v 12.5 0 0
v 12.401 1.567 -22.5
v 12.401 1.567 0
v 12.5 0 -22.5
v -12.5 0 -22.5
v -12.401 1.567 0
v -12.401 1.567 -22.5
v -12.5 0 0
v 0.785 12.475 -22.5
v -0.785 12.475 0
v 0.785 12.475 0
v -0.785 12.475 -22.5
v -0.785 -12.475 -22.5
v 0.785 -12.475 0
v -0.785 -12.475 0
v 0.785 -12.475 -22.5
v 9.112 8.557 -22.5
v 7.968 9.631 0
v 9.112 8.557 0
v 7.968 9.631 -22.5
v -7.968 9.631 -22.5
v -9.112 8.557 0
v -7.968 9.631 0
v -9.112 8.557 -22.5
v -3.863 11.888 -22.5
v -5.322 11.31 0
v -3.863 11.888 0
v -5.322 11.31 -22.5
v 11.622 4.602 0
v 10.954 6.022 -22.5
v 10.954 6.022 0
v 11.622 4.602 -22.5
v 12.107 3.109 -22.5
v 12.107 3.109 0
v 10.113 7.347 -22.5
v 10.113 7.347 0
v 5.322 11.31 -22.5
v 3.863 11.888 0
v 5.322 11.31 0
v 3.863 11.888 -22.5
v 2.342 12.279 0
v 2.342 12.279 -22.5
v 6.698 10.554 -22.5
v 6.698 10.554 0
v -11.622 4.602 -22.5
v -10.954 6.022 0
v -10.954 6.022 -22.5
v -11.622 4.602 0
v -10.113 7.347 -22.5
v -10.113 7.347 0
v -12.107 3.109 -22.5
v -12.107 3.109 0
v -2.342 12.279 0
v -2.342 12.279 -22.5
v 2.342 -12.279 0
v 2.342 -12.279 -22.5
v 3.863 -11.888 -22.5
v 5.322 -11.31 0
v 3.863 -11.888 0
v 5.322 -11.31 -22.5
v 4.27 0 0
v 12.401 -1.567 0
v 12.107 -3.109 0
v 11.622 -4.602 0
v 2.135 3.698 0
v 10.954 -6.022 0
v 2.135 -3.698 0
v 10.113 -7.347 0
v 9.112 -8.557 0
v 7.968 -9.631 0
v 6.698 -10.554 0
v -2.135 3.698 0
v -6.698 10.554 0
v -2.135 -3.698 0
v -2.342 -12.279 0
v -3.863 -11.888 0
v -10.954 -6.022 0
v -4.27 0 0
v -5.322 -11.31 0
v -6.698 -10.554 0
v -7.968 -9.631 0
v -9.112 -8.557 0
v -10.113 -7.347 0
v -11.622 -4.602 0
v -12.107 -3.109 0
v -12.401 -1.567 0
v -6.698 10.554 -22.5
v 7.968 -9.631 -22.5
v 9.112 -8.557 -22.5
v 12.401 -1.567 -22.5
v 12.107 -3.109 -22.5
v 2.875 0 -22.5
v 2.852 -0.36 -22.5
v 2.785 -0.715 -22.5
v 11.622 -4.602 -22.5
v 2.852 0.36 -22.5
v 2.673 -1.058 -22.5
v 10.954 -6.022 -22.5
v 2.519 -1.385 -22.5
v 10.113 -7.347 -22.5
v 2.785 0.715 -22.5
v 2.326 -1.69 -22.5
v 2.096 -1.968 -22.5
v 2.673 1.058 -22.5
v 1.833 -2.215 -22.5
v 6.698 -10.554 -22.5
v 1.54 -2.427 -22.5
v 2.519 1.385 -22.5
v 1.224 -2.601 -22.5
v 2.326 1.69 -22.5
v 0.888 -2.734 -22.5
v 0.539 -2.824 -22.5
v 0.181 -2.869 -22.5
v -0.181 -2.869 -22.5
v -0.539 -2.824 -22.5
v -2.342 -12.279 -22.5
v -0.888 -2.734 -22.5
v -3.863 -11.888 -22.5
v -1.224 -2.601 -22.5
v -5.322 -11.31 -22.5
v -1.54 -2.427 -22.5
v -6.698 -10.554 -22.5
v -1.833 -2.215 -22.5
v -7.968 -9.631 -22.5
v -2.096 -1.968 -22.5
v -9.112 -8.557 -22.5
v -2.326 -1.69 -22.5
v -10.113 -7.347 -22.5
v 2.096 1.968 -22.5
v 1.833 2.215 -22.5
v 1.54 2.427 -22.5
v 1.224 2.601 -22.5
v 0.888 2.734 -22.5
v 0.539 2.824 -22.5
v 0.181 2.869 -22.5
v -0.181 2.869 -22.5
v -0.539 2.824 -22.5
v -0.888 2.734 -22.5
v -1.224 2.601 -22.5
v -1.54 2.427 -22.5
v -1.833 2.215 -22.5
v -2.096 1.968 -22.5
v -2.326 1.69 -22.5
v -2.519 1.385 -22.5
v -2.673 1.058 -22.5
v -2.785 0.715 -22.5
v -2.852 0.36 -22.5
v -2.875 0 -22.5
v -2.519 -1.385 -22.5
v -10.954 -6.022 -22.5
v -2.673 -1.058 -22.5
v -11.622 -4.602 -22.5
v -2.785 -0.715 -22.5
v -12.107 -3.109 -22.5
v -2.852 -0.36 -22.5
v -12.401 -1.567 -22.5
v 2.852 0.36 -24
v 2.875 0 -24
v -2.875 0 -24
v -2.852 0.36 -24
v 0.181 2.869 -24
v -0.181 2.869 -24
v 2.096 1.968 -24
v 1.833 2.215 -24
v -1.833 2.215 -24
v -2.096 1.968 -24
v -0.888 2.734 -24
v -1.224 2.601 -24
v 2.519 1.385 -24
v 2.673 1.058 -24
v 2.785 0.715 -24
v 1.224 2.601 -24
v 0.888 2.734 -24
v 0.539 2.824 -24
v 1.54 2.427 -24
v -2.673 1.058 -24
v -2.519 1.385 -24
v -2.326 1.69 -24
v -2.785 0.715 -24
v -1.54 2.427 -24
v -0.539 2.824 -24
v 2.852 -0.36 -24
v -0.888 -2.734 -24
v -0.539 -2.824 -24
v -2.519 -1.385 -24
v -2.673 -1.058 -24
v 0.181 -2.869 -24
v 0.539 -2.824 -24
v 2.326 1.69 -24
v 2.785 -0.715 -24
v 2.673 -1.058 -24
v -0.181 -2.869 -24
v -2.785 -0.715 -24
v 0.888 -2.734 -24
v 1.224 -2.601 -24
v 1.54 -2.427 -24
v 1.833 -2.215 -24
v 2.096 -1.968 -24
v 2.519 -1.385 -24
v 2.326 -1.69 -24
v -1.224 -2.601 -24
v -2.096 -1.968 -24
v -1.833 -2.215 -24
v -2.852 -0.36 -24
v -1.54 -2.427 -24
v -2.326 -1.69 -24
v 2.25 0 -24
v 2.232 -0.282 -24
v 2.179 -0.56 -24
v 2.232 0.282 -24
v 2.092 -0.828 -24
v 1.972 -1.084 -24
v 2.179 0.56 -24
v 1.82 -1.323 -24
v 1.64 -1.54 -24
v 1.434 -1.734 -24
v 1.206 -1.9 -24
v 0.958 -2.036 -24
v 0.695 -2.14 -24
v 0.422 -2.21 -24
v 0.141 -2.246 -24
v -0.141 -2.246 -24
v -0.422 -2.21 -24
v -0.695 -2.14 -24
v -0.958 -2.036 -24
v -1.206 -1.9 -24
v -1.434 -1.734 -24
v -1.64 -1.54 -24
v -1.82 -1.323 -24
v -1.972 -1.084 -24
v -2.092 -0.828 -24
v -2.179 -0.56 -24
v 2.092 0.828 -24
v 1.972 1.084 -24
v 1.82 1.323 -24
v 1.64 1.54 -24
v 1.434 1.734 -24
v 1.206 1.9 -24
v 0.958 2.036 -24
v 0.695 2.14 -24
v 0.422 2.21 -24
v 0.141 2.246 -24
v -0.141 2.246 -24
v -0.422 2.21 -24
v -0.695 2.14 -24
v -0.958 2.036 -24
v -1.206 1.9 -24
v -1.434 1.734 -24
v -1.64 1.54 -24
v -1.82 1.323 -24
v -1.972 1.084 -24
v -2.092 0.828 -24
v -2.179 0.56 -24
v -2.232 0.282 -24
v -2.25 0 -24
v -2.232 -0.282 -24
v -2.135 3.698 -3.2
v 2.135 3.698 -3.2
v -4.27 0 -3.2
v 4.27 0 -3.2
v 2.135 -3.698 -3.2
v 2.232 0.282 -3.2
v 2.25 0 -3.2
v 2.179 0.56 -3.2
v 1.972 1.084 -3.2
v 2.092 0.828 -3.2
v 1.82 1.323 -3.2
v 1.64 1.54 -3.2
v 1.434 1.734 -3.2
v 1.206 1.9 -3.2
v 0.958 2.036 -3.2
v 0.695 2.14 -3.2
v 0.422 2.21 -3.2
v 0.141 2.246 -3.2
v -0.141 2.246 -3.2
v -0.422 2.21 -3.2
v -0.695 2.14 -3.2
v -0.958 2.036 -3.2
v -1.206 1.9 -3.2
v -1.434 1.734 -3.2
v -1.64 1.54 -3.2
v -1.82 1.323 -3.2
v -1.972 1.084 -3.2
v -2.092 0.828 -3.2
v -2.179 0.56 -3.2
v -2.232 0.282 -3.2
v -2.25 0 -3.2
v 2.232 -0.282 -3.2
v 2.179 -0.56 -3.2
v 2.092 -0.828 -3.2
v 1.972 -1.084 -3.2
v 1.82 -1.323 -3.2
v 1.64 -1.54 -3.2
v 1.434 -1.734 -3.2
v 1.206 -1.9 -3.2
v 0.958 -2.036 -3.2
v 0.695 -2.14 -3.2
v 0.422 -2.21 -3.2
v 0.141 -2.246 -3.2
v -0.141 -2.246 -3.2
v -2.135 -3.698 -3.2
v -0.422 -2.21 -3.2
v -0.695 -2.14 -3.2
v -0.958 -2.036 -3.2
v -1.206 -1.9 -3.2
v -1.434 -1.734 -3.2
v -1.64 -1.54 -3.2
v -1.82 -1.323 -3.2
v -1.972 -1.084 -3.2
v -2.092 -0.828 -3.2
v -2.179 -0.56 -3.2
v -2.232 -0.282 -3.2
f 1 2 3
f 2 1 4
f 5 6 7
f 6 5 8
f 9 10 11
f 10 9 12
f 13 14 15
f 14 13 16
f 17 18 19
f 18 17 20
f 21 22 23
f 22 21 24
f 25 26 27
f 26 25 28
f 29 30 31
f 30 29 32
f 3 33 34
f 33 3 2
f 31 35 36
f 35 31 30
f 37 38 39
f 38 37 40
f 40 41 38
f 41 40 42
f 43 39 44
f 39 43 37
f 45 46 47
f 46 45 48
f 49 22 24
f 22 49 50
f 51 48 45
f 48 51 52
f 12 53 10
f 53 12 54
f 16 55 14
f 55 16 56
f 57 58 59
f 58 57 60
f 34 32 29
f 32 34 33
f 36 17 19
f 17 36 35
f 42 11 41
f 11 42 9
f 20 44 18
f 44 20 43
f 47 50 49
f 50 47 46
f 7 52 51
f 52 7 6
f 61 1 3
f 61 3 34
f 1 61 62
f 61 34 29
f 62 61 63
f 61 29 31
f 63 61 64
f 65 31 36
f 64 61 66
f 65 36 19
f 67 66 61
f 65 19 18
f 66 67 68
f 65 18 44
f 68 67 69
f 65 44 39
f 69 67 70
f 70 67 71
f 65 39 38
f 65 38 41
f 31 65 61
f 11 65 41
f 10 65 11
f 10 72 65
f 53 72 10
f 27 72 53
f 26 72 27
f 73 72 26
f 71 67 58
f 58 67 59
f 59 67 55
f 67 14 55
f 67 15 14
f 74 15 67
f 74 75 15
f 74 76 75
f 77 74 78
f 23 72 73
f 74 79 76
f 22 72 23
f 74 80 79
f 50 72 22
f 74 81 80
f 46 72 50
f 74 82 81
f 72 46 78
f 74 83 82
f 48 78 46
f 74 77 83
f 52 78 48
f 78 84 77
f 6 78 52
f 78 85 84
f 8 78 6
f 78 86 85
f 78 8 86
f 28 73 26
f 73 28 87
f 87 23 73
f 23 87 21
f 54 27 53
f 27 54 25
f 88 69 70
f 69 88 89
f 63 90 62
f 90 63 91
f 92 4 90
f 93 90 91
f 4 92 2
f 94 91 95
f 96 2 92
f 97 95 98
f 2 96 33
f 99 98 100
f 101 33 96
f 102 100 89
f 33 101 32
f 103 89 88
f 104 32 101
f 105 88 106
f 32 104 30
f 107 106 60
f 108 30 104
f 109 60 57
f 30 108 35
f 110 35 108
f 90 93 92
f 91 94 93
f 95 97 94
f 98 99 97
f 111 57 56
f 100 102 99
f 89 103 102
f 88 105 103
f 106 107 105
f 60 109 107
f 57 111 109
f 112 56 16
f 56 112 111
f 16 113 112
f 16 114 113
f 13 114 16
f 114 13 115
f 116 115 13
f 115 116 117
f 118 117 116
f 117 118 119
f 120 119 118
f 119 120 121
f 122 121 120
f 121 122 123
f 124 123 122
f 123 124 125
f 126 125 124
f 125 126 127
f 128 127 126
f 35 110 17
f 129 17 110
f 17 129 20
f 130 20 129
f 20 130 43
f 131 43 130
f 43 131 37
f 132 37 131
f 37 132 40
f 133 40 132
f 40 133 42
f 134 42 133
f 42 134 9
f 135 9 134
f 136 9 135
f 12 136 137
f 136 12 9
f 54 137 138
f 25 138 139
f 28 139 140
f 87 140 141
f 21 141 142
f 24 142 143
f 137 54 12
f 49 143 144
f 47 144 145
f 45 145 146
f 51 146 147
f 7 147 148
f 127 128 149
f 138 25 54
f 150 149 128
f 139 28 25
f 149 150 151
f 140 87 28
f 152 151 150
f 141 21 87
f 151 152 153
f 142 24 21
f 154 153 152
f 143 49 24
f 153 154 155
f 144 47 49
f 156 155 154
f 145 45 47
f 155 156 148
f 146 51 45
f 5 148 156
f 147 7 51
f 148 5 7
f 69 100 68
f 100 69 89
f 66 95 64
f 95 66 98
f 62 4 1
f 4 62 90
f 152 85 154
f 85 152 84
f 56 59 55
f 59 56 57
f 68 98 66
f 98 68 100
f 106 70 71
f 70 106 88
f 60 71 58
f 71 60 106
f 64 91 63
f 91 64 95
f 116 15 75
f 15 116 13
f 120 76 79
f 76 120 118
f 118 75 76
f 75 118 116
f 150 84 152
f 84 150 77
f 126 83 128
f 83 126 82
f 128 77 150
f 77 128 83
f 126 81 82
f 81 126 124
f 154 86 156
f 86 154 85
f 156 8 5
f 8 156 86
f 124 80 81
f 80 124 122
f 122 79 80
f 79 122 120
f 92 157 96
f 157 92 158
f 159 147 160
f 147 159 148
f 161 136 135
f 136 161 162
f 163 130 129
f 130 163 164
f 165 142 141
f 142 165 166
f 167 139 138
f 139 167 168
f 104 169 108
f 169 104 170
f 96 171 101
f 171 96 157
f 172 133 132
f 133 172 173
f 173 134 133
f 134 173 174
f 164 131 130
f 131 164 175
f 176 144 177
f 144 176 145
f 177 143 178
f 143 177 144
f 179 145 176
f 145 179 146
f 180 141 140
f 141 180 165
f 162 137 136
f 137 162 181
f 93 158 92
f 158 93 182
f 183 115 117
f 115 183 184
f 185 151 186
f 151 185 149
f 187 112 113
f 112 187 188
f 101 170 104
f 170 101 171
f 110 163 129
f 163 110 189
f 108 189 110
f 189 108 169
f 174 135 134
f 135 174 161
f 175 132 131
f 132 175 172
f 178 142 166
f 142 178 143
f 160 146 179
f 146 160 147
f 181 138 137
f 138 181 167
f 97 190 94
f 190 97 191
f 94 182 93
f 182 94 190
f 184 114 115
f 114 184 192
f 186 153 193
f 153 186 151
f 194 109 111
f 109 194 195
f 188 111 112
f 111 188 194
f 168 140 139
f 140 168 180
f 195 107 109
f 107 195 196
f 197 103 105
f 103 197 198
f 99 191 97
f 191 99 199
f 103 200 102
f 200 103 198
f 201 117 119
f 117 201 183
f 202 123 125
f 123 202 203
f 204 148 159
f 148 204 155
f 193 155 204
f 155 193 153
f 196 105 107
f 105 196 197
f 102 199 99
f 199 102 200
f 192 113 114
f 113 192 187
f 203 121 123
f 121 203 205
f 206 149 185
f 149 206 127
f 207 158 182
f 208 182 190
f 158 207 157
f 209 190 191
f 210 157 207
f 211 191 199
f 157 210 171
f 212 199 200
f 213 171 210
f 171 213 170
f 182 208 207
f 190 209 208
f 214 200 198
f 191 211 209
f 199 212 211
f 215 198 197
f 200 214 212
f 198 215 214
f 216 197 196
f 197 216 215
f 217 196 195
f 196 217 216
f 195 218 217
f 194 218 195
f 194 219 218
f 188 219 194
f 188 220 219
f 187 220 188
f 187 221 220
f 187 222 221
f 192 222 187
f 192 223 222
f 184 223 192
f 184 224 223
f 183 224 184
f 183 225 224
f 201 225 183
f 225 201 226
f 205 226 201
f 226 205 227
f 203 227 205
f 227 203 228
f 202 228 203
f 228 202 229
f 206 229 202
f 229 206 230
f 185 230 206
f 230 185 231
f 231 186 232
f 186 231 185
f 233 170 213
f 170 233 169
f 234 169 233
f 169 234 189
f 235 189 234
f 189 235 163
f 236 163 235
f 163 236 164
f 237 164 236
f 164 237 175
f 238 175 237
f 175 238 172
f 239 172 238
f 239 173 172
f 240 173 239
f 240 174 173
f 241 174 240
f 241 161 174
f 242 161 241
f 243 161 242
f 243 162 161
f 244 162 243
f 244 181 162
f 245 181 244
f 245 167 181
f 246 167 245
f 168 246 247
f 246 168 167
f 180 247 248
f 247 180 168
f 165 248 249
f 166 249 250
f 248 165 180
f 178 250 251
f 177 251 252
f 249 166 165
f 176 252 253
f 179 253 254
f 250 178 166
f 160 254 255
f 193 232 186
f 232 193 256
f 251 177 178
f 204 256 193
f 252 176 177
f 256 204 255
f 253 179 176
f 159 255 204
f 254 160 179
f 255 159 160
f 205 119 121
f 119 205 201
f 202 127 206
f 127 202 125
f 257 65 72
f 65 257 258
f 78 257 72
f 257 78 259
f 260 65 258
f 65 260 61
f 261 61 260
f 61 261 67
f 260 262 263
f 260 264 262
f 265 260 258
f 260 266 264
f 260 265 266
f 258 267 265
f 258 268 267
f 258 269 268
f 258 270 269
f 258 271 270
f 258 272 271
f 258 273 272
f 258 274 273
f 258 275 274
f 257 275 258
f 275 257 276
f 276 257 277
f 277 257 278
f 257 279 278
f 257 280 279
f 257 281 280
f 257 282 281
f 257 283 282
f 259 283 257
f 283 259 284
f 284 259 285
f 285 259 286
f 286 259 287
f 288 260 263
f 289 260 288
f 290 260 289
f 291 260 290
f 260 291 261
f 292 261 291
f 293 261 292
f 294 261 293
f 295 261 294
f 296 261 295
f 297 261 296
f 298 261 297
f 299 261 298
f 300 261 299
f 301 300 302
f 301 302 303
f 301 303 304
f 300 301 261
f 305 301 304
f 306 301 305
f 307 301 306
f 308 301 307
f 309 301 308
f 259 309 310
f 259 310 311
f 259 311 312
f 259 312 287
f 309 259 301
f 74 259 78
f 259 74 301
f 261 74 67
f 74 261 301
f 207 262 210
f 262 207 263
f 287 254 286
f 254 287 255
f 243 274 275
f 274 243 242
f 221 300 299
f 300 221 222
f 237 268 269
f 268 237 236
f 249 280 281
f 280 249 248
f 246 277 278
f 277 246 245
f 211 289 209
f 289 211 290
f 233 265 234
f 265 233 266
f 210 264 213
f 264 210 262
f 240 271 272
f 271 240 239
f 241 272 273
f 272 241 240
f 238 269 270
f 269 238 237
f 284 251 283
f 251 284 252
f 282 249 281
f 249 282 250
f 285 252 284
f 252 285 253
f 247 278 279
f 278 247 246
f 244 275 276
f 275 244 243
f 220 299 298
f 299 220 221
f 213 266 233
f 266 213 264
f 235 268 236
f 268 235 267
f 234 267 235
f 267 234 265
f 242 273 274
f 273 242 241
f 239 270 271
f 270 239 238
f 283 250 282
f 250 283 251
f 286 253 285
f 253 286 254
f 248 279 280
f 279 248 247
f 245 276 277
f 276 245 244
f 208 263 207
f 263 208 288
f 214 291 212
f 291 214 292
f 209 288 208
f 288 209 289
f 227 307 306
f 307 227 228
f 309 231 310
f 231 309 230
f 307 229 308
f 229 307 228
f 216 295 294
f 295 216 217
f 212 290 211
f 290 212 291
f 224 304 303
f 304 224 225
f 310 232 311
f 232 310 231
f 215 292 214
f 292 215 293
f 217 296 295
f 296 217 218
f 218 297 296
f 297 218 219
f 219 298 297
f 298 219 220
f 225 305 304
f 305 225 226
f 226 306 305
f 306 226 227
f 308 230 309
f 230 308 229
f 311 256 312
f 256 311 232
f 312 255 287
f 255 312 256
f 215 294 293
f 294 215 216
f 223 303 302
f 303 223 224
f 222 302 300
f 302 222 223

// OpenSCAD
$fn = 50;

difference() {
	union() {
		translate(v = [0, 0, -22.5]) {
			cylinder(h = 22.5, r = 12.5);
		}
		#translate(v = [0, 0, -24.0]) {
			cylinder(h = 24, r = 2.875);
		}
	}
	union() {
		translate(v = [0, 0, 0]) {
			rotate(a = [0, 0, 0]) {
				difference() {
					union() {
						translate(v = [0, 0, -3.2]) {
							linear_extrude(height = 3.2) {
								polygon(points = [[4.2698, 0.0], [2.1349000000000005, 3.697755269078796], [-2.134899999999999, 3.6977552690787965], [-4.2698, 5.228996902999369e-16], [-2.134900000000002, -3.6977552690787956], [2.1348999999999974, -3.697755269078798]]);
							}
						}
					}
					union();
				}
			}
		}
		#translate(v = [0, 0, -100.0]) {
			cylinder(h = 200, r = 2.25);
		}
	}
}
